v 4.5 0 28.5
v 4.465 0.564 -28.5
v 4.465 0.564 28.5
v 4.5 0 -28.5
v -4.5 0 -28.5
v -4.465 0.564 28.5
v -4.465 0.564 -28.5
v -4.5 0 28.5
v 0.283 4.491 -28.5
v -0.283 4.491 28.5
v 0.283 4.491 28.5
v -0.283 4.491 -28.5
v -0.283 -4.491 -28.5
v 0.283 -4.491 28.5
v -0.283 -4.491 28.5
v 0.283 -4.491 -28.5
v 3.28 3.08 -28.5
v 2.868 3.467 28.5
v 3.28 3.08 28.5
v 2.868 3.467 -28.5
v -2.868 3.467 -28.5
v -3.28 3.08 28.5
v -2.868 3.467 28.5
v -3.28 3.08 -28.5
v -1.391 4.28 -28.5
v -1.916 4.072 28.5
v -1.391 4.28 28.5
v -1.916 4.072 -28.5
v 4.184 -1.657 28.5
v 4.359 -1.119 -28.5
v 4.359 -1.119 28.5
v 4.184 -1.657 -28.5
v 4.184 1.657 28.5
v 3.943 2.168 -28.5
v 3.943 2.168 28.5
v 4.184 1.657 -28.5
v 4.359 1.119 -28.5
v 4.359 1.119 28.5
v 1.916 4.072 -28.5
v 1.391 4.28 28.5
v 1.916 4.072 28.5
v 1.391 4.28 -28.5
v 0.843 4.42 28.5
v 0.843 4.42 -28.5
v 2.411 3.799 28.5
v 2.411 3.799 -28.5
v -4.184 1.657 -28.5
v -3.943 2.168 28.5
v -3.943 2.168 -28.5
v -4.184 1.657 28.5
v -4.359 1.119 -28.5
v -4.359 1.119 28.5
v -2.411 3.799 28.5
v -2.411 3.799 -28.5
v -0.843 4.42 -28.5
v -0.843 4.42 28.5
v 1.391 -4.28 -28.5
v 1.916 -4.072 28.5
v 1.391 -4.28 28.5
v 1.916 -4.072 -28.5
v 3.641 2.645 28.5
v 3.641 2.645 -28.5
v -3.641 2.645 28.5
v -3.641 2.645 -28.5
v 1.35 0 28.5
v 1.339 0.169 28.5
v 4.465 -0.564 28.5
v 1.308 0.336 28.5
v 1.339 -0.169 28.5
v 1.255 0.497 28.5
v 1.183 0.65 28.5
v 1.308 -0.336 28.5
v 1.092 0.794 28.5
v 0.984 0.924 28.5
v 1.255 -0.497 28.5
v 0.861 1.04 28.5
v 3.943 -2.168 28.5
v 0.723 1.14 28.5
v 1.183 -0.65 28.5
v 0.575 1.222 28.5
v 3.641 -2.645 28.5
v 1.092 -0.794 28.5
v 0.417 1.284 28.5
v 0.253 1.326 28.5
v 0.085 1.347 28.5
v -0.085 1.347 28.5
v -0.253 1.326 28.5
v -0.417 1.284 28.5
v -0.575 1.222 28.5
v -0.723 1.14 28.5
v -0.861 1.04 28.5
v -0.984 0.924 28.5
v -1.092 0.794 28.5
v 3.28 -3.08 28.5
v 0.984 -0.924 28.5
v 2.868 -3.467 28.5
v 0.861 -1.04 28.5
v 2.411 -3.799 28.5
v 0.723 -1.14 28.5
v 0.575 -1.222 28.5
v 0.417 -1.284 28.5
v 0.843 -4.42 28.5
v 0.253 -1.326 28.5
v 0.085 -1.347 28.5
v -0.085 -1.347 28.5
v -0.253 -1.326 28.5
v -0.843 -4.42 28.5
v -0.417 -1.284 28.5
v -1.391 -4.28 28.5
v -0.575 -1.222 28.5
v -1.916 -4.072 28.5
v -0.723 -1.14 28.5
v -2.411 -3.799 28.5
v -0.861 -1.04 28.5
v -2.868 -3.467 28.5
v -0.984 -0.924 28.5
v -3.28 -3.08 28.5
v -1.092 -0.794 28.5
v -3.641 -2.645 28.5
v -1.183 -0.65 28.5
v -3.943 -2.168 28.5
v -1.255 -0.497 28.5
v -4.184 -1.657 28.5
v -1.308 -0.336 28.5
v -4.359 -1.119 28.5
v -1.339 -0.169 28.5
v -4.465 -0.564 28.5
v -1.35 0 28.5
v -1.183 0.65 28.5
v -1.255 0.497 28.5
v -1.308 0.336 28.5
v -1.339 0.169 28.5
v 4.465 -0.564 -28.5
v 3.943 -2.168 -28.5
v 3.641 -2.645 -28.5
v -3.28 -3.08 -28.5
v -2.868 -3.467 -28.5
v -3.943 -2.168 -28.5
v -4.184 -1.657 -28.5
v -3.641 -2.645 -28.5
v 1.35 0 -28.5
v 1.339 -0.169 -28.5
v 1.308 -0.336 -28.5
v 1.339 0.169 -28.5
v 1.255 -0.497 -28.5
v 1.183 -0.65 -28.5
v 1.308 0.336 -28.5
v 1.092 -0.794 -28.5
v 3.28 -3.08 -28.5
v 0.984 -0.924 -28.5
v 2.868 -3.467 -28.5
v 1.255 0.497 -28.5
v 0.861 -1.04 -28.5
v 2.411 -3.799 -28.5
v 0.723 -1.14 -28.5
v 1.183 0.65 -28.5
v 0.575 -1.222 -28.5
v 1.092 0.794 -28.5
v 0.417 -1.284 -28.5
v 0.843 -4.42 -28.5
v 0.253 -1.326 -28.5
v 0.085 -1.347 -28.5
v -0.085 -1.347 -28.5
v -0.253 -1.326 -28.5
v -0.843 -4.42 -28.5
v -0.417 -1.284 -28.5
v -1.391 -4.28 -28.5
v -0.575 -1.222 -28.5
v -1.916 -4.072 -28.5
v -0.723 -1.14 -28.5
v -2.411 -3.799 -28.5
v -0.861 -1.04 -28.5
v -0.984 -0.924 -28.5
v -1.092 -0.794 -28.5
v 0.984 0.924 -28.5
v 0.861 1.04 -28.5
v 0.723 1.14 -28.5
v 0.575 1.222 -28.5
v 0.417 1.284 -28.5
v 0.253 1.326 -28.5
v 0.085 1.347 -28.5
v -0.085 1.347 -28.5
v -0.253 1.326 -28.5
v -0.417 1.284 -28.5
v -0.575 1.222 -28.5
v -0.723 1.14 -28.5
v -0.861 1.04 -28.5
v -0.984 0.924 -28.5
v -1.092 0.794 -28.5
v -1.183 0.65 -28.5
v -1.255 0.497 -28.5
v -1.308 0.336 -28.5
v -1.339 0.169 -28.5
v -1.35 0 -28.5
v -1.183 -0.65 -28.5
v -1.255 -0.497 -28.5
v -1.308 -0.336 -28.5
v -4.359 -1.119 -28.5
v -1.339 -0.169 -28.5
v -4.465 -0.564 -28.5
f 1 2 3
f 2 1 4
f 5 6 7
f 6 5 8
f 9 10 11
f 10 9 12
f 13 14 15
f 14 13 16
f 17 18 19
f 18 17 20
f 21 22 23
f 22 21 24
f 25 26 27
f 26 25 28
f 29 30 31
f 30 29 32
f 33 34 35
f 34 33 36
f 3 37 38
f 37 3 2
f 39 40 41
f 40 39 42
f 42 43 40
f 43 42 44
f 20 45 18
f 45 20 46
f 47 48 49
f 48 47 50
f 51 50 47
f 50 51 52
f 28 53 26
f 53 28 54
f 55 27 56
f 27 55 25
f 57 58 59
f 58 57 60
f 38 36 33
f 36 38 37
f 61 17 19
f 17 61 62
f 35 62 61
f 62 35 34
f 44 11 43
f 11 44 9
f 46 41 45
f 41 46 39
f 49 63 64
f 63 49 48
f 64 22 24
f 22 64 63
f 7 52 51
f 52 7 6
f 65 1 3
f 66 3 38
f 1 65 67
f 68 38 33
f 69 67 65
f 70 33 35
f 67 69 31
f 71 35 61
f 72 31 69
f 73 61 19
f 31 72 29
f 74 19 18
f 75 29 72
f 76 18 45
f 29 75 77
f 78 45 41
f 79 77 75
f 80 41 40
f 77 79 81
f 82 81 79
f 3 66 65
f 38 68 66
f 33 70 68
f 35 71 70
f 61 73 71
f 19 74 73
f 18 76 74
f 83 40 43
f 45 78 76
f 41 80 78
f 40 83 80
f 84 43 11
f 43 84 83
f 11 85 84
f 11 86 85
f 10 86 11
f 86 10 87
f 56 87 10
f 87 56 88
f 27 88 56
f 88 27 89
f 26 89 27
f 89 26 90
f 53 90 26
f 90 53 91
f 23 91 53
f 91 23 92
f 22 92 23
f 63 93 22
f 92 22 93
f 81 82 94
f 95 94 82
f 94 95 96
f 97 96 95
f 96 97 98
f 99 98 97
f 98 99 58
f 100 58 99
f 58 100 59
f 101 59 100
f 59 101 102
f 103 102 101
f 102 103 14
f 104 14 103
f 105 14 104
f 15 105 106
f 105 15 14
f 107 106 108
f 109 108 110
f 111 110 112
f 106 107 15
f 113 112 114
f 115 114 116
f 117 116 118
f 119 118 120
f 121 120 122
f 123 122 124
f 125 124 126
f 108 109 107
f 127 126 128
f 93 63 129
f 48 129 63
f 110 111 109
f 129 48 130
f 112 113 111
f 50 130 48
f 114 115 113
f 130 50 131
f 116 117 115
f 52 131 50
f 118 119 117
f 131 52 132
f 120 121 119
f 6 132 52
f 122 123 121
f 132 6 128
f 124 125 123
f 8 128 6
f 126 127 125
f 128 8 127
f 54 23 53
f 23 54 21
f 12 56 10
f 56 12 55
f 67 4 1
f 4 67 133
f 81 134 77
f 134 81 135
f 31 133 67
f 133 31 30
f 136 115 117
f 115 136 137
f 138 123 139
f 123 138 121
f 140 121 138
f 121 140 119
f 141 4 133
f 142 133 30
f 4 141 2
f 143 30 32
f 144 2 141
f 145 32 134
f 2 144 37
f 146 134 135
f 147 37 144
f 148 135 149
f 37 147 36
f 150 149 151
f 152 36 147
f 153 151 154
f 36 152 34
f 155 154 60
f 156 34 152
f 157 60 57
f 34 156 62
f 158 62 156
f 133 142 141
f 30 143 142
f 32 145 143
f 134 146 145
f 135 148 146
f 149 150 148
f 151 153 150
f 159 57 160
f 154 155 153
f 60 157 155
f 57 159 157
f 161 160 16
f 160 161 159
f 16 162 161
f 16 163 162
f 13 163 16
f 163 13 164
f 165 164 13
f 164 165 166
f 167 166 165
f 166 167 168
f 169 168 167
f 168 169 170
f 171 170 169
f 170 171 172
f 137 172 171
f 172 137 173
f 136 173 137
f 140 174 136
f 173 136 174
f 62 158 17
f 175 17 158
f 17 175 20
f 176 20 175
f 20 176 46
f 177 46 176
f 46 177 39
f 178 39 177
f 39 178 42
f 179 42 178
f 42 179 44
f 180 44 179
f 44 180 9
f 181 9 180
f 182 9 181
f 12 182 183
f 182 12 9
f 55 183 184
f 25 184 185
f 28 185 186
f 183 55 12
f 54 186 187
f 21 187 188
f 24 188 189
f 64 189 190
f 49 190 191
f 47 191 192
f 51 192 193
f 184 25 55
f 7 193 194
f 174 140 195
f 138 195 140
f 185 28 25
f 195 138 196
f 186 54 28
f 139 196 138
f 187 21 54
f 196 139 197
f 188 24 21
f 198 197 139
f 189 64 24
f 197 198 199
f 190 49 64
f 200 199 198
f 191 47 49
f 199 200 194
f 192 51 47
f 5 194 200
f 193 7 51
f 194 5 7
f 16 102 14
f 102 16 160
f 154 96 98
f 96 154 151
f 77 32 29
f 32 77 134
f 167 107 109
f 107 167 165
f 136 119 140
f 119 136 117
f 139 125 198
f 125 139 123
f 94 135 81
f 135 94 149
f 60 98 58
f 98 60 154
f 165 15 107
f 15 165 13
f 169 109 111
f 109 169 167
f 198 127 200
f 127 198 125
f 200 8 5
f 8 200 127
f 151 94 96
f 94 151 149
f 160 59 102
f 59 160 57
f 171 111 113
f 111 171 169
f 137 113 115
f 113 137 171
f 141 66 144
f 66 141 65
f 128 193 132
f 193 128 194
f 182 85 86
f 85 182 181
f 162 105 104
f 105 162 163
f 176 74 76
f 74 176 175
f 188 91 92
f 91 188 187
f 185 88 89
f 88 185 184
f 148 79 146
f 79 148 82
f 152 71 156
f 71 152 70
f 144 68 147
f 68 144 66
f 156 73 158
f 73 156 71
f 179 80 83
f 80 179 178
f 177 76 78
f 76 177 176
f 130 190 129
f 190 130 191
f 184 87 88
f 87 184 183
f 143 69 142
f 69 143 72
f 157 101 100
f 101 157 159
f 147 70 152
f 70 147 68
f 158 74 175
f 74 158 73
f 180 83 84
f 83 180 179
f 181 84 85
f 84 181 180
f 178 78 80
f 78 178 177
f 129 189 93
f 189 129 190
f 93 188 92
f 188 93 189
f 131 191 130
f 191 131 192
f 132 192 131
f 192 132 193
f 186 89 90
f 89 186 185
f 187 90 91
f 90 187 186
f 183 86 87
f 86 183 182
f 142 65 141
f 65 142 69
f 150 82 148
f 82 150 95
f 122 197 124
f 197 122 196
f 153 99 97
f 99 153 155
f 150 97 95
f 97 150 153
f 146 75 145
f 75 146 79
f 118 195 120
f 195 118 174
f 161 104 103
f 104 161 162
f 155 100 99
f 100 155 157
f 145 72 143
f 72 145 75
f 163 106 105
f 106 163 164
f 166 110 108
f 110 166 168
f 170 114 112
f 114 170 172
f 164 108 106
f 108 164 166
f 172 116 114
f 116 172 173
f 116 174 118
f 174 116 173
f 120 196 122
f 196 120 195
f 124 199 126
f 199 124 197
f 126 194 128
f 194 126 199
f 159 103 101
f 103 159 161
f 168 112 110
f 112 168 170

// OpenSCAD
$fn = 50;


difference() {
	union() {
		translate(v = [0, 0, -28.5000000000]) {
			cylinder(h = 57, r = 4.5000000000);
		}
	}
	union() {
		translate(v = [0, 0, -100.0000000000]) {
			cylinder(h = 200, r = 1.3500000000);
		}
	}
}
